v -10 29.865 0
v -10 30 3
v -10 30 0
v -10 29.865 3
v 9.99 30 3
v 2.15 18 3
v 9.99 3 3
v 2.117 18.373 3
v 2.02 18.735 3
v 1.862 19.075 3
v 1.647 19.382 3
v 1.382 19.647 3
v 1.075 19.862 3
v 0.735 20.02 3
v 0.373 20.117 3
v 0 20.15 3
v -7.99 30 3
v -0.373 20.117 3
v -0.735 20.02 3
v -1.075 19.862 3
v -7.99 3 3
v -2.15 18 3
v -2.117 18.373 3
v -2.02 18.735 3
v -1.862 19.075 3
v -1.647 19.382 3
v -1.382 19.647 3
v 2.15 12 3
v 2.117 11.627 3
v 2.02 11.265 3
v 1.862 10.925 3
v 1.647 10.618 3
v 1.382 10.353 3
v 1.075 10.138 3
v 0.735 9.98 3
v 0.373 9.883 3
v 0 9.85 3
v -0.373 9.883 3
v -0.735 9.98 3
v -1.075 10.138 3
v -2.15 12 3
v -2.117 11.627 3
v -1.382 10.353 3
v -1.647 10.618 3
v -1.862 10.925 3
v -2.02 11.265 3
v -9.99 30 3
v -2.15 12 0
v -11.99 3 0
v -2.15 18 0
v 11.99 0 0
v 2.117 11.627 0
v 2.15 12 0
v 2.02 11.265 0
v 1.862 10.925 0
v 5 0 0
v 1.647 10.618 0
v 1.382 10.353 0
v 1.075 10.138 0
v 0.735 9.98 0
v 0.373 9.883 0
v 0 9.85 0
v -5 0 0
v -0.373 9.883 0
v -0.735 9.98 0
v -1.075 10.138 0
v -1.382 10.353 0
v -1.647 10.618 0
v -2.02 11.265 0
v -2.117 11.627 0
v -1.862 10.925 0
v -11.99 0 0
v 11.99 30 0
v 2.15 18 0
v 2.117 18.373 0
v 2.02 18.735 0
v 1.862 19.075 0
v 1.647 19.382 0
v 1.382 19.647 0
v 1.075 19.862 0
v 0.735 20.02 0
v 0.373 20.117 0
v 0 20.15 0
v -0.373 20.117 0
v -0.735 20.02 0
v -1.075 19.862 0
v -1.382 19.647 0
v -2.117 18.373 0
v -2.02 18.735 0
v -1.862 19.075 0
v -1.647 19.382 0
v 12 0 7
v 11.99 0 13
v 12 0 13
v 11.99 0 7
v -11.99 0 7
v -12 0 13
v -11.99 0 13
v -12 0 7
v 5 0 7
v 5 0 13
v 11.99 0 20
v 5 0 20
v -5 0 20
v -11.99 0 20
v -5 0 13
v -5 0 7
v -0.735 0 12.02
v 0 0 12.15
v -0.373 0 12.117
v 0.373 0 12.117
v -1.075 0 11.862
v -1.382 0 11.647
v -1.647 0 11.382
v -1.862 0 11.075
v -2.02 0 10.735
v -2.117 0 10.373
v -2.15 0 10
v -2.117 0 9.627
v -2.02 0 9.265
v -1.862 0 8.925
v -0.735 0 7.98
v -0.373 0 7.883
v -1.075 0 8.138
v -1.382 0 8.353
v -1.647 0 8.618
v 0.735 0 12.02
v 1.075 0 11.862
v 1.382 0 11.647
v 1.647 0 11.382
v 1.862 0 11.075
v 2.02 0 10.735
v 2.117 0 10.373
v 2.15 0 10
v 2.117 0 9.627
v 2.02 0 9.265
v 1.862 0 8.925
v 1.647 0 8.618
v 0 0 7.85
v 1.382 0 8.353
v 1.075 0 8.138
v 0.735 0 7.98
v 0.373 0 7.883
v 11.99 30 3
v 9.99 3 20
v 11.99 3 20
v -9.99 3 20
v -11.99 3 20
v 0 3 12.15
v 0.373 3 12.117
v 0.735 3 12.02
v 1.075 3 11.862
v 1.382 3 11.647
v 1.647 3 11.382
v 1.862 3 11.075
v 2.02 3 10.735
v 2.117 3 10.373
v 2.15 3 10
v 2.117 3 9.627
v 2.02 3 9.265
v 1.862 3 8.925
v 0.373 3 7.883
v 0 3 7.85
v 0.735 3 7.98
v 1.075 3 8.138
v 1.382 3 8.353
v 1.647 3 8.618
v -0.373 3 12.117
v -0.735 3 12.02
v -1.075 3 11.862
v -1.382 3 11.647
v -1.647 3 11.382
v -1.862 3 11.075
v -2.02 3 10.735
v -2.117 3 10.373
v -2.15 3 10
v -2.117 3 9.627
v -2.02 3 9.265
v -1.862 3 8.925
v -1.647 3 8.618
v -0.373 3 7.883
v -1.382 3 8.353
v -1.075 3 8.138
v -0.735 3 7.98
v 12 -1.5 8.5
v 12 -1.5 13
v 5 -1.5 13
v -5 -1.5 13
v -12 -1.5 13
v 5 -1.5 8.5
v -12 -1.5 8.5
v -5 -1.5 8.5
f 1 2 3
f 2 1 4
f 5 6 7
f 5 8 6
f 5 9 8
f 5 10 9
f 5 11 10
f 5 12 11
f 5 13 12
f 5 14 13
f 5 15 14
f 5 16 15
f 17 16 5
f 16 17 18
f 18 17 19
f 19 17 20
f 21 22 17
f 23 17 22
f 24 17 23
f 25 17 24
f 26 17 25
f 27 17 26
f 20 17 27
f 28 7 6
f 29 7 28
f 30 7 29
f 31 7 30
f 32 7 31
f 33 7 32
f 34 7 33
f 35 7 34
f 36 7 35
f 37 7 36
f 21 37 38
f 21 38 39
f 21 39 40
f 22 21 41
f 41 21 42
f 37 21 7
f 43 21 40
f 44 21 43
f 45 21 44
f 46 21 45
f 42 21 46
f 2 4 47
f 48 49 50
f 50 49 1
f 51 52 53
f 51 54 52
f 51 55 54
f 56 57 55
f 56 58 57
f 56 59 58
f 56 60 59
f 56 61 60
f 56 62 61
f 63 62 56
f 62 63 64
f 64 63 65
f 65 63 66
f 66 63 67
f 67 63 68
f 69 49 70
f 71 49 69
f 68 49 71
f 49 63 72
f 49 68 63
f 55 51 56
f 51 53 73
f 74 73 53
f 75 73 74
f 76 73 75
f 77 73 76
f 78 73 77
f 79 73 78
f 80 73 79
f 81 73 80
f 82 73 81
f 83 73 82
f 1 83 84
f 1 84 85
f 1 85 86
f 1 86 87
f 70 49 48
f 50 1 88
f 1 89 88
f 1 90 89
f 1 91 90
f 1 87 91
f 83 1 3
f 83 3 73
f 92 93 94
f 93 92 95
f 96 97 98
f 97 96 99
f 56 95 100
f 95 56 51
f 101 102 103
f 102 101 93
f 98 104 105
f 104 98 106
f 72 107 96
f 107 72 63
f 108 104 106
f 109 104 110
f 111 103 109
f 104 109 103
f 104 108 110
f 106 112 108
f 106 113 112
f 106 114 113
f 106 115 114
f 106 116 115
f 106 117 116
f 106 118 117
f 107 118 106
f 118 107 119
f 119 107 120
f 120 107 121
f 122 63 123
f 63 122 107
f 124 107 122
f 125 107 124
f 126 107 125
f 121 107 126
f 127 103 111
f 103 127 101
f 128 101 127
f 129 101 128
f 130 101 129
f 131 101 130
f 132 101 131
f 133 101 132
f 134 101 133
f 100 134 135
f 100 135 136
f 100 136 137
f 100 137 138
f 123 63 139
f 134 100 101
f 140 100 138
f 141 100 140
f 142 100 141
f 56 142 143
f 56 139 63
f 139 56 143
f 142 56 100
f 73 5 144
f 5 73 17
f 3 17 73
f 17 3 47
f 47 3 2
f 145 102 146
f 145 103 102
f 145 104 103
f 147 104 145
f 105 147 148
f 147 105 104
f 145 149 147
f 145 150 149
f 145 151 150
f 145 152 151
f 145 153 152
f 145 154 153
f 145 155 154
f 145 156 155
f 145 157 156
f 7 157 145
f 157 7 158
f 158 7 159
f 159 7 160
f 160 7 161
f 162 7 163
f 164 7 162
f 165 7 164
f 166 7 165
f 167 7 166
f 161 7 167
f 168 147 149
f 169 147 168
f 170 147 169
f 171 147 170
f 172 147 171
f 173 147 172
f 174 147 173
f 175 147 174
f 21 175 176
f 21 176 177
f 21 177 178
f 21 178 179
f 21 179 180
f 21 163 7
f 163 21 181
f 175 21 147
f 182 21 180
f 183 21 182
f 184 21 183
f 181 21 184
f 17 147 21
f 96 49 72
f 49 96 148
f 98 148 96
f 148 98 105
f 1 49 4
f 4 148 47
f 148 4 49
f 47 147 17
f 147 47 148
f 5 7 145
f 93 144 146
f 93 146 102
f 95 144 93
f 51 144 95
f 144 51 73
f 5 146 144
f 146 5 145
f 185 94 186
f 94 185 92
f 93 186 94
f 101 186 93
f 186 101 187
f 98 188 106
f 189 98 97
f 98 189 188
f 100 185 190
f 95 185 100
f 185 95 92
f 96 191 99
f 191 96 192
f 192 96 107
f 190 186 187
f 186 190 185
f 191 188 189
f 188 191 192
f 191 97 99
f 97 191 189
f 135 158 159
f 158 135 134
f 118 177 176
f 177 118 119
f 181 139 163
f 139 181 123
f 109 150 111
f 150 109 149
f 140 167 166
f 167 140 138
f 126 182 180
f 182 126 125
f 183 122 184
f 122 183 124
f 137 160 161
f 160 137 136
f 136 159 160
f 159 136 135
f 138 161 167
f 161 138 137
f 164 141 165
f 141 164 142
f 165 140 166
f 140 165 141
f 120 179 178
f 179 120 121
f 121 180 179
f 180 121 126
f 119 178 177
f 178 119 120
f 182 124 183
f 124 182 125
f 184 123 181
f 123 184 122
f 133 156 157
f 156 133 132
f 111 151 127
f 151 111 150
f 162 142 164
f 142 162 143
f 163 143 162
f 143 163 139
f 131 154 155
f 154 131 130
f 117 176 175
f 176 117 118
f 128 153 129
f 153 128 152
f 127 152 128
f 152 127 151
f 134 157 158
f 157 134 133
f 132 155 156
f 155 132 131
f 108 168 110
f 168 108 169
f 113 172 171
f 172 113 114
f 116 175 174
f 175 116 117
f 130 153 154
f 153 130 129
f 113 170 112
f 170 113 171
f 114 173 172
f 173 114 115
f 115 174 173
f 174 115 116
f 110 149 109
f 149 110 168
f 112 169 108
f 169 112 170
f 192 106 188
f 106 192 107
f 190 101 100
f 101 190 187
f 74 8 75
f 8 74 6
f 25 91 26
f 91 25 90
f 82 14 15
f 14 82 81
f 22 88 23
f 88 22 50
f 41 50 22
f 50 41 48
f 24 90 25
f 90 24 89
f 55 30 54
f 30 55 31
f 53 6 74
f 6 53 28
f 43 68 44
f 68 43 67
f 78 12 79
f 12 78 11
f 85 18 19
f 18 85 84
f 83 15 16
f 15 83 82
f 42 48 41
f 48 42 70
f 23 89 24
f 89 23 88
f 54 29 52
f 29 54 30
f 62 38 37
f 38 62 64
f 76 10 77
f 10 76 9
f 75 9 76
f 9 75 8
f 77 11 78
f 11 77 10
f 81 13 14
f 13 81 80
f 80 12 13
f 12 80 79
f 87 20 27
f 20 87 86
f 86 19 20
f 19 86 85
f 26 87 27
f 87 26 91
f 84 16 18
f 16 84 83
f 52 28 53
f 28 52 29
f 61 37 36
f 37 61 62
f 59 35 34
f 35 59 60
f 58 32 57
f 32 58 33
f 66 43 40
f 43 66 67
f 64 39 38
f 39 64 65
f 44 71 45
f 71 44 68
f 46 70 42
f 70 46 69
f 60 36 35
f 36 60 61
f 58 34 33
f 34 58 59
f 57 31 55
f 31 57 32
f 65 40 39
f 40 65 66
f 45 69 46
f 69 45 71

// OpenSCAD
$fn=36;

rail_height=20; //2020 rail
slot_width=6;
notch_depth=1.5;
rail_screw_diameter=4.3; //M4 + margin

psu_screw_diameter = rail_screw_diameter;
psu_screw_slot_length = 6;
slot_nut_length=10;

bracket_length=20;
bracket_width=30;
endplate_thickness=2;
bracket_thickness=3;
e=0.01;



difference() {
    union() {
        
       //Base parts of bracket
       translate([-bracket_length/2,0,0]) {
           cube([bracket_length, bracket_width, bracket_thickness]); 
           cube([bracket_length, bracket_thickness, rail_height]);

       }
       
       //Endplates
       for(i=[-1,1]) {
           translate([i*(bracket_length/2-e), 0, 0]) hull() {
               cube([endplate_thickness, bracket_width, bracket_thickness]);
               scale([i,1,1]) cube([endplate_thickness, bracket_thickness, rail_height]);
           }
       }       
       
       //Notch into rail
       notch_points=[[0,-slot_width/2],[notch_depth,-slot_width/2+notch_depth],[notch_depth,slot_width/2],[0,slot_width/2]];
       notch_path=[[0,1,2,3,0]];
       
       translate([bracket_length/2+endplate_thickness,0,rail_height/2]) rotate([90,0,-90])  linear_extrude(height=bracket_length+endplate_thickness*2) polygon(points=notch_points, paths=notch_path, convexity=2);
       
    }
    
    union() {
        //Holes for mounting bolts to rail
            translate([0, -e, rail_height/2]) rotate([-90,0,0]) cylinder(d=rail_screw_diameter, h=bracket_thickness+2*e);
        
        //Cutout in notch for slot nuts
            translate([-slot_nut_length/2,-notch_depth-e,0]) cube([slot_nut_length,notch_depth+e,rail_height]);
        
        
        //PSU screw hole
        hull() {
            translate([0,(bracket_width+psu_screw_slot_length)/2, -e]) cylinder(d=psu_screw_diameter, h=bracket_thickness+2*e);
            translate([0,(bracket_width-psu_screw_slot_length)/2, -e]) cylinder(d=psu_screw_diameter, h=bracket_thickness+2*e);
        }
        
    }
}
